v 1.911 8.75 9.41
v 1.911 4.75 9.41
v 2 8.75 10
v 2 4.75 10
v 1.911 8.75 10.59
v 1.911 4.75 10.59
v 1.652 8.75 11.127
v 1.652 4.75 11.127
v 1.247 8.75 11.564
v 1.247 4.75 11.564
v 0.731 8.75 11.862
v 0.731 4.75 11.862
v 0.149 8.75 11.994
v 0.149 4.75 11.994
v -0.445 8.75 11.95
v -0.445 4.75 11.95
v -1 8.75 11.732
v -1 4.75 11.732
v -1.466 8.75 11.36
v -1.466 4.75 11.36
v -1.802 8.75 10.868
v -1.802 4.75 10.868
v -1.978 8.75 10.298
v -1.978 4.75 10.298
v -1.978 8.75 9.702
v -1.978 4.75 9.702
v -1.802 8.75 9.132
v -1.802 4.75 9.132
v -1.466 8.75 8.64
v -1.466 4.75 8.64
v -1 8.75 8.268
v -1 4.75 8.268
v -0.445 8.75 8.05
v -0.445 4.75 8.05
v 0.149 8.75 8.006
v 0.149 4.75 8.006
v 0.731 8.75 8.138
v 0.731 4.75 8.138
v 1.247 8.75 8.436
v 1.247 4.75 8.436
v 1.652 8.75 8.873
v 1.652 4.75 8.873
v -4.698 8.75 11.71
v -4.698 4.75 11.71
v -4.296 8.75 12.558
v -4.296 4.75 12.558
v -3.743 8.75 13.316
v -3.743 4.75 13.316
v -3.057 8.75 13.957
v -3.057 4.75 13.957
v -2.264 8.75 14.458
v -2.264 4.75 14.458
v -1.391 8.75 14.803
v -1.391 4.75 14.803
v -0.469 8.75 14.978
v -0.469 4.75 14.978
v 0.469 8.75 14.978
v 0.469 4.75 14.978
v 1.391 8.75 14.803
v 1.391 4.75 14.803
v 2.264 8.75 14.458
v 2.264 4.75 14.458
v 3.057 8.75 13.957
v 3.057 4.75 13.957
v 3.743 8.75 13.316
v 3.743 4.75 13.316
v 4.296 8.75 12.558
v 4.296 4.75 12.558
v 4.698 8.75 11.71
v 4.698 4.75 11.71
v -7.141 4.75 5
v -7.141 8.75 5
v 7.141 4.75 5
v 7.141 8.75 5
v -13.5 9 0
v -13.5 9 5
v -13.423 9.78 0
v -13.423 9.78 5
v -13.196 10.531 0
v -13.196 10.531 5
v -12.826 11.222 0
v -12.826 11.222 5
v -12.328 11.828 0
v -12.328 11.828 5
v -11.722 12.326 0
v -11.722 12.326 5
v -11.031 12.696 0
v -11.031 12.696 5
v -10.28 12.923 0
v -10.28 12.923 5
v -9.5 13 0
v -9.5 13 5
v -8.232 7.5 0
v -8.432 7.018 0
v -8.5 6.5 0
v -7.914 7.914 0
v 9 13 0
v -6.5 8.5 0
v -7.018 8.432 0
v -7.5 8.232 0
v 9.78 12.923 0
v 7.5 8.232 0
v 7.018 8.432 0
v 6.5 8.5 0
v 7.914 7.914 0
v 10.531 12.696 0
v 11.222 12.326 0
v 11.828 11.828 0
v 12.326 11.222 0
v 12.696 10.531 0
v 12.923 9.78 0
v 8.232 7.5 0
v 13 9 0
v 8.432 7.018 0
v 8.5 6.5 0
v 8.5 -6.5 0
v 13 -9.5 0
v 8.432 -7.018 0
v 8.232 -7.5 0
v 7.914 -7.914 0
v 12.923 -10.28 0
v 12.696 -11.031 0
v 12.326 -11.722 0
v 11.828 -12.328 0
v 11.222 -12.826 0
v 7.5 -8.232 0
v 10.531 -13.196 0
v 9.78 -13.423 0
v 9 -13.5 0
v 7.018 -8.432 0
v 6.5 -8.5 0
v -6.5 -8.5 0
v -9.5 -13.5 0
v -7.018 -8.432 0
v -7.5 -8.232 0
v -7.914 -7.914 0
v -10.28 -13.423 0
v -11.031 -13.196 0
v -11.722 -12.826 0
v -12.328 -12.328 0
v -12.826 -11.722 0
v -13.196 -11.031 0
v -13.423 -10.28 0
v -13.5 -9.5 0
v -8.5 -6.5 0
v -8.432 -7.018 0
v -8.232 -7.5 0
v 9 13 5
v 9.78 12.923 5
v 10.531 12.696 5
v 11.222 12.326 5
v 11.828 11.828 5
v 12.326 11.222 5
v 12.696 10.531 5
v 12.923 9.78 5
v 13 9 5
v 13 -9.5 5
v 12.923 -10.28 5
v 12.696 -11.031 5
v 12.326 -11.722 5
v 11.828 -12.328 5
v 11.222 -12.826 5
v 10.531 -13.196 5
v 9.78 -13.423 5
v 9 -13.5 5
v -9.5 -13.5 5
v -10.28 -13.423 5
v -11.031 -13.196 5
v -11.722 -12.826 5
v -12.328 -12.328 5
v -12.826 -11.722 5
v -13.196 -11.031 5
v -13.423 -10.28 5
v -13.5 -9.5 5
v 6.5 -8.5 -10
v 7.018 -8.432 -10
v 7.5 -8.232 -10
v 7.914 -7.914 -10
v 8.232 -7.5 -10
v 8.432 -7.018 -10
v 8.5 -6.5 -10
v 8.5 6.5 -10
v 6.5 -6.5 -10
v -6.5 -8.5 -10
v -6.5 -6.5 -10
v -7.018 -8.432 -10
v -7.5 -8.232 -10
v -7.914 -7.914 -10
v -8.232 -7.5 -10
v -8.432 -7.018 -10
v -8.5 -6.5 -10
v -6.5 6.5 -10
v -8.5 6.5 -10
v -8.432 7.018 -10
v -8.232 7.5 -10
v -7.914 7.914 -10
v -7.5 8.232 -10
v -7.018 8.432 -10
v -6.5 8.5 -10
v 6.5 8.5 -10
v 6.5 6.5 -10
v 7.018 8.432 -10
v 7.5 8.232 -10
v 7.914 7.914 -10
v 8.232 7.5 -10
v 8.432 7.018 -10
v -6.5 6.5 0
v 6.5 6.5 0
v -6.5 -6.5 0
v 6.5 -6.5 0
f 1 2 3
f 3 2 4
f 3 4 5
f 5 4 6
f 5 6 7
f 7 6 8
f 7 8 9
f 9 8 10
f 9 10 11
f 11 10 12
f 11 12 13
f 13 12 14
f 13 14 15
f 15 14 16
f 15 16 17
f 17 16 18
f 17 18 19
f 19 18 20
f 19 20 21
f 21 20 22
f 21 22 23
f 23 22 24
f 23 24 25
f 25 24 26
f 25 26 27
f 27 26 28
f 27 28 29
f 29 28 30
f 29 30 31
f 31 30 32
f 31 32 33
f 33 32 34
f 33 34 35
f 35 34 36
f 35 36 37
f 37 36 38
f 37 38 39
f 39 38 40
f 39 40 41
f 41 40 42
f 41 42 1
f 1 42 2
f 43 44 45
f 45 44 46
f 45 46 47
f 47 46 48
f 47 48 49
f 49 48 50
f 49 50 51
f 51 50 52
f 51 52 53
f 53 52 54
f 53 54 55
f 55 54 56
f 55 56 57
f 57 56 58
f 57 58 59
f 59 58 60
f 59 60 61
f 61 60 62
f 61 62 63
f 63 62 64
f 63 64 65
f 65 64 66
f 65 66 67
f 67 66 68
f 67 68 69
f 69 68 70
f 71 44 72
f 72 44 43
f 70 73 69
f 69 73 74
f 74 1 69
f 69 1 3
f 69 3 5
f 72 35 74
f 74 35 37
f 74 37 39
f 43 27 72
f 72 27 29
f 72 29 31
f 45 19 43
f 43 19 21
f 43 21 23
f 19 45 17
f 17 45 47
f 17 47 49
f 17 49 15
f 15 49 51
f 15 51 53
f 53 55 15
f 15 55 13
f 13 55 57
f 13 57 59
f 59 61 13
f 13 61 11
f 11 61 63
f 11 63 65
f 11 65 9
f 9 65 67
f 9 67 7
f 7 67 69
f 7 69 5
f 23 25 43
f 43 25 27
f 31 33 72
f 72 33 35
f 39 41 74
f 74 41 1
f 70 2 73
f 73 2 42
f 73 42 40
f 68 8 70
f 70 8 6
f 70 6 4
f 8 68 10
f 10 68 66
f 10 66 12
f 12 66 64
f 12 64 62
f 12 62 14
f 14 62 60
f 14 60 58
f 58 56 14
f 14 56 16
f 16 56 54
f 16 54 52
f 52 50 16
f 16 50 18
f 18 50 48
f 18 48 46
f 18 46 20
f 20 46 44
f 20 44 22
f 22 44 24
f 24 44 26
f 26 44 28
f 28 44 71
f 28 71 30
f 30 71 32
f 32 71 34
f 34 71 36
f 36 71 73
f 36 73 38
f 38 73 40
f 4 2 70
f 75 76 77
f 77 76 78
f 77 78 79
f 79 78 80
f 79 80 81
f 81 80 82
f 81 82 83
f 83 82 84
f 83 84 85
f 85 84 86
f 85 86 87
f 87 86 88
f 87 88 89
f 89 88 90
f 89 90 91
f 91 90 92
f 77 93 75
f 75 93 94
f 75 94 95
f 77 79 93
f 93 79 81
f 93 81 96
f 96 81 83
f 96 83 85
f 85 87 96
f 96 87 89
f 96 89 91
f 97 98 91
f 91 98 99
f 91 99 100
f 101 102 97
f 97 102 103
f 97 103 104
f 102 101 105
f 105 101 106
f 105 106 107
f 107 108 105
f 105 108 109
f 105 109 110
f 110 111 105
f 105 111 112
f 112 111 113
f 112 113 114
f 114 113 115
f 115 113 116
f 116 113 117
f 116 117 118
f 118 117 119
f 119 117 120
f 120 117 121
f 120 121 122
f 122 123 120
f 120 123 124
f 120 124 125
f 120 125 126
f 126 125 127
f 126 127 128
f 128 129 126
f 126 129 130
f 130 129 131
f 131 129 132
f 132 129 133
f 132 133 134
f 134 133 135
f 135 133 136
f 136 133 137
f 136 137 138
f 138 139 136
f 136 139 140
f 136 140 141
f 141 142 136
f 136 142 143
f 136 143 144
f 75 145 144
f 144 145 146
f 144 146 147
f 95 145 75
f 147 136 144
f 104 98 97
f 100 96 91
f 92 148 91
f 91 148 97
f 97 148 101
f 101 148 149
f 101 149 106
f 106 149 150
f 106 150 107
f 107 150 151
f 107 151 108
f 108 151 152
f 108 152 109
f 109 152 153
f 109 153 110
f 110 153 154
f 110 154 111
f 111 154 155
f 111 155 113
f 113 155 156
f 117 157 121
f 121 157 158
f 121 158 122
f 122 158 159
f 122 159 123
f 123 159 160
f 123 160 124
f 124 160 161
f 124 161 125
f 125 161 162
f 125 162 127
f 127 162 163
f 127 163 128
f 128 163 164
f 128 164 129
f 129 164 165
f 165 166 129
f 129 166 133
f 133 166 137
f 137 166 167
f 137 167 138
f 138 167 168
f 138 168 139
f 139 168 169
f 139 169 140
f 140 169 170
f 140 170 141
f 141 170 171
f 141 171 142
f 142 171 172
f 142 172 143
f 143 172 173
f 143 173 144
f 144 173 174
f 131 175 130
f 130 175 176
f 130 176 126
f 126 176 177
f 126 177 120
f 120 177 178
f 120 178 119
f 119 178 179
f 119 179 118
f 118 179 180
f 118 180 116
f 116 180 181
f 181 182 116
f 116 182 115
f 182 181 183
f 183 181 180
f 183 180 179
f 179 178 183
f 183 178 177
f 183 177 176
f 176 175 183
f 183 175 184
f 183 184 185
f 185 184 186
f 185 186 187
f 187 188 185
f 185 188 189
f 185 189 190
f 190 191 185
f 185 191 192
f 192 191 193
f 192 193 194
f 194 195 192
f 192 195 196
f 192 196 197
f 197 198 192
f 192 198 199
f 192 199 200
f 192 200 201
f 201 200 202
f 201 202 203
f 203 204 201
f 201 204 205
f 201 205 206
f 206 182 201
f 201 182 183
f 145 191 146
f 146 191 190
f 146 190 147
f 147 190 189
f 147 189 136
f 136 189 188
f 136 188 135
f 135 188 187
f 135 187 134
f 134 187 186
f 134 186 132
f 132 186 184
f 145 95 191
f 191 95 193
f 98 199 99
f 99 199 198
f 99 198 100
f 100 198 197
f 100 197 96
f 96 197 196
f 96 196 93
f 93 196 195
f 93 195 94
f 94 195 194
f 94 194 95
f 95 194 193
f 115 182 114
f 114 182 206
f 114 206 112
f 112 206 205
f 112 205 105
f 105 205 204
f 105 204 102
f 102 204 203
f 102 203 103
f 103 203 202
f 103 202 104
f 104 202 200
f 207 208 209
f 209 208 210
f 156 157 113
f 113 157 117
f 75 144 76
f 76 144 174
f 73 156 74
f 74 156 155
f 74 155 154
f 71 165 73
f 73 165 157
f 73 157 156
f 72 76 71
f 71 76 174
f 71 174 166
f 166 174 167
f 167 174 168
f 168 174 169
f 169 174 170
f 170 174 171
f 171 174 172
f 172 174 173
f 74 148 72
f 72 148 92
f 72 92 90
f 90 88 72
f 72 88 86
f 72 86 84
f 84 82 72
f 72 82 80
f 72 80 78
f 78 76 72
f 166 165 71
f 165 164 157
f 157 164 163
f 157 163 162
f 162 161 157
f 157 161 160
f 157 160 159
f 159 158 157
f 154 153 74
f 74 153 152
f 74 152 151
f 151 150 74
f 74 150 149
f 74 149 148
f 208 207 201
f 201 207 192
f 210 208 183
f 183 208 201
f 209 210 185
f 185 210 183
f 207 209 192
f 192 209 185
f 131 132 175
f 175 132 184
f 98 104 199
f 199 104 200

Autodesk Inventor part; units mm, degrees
ref_plane "YZ Plane" through (0, 0, 0) normal (1, 0, 0) x (0, 1, 0)
ref_plane "XZ Plane" through (0, 0, 0) normal (0, 1, 0) x (-1, 0, 0)
ref_plane "XY Plane" through (0, 0, 0) normal (0, 0, 1) x (1, 0, 0)
sketch "Эскиз1" plane through (0, 0, 0) normal (0, 0, 1) x (1, 0, 0)
  line L0 (8.5, -8.5) -> (-8.5, -8.5) projected
  line L1 (8.5, 8.5) -> (8.5, -8.5) projected
  line L2 (-8.5, -8.5) -> (-8.5, 8.5) projected
  line L3 (-8.5, 8.5) -> (8.5, 8.5) projected
  line L4 (-6.5, -6.5) -> (6.5, -6.5)
  line L5 (6.5, -6.5) -> (6.5, 6.5)
  line L6 (6.5, 6.5) -> (-6.5, 6.5)
  line L7 (-6.5, 6.5) -> (-6.5, -6.5)
  point P0 (0, 0)
  dimension "d0" = 2
extrude "Выдавливание1" add sketch "Эскиз1" against normal blind 10
sketch "Эскиз2" plane through (0, 0, 0) normal (0, 0, 1) x (1, 0, 0)
  line L0 (13, -13.5) -> (-13.5, -13.5) projected
  line L1 (13, 13) -> (13, -13.5) projected
  line L2 (-13.5, 13) -> (13, 13) projected
  line L3 (-13.5, -13.5) -> (-13.5, 13) projected
  point P0 (0, 0)
extrude "Выдавливание2" add sketch "Эскиз2" along normal blind 5
fillet "Сопряжение1" radius 2 4 edges at (8.5, 8.5, -5) (-8.5, 8.5, -5) (-8.5, -8.5, -5) (8.5, -8.5, -5)
fillet "Сопряжение2" radius 4 4 edges at (-13.5, -13.5, 2.5) (13, -13.5, 2.5) (13, 13, 2.5) (-13.5, 13, 2.5)
ref_plane "РабПлоскость2" through (-9.5, 4.75, 0) normal (0, 1, 0) x (1, 0, 0)
ref_plane "РабПлоскость1" through (-9.5, -0.25, 0) normal (0, 1, 0) x (1, 0, 0)
sketch "Эскиз3" plane through (-9.5, 4.75, 0) normal (0, 1, 0) x (1, 0, 0)
  line L0 (0, -5) -> (18.5, -5) projected
  line L1 (2.3593, -5) -> (4.8015, -11.7101)
  line L2 (16.6407, -5) -> (14.1985, -11.7101)
  arc A0 (4.8015, -11.7101) -> (14.1985, -11.7101) centre (9.5, -10) ccw
  circle A1 centre (9.5, -10) radius 2
  line L3 (16, 10) -> (3, 10) projected
  line L4 (0, -5) -> (-4, -5) projected
  point P0 (9.5, 0)
  point P1 (9.5, 10)
  dimension "d10" = 4
  dimension "d11" = 5
  dimension "d12" = 5
  dimension "d13" = 70
extrude "Выдавливание3" add sketch "Эскиз3" along normal blind 4
properties part number "cum_holder_down"
